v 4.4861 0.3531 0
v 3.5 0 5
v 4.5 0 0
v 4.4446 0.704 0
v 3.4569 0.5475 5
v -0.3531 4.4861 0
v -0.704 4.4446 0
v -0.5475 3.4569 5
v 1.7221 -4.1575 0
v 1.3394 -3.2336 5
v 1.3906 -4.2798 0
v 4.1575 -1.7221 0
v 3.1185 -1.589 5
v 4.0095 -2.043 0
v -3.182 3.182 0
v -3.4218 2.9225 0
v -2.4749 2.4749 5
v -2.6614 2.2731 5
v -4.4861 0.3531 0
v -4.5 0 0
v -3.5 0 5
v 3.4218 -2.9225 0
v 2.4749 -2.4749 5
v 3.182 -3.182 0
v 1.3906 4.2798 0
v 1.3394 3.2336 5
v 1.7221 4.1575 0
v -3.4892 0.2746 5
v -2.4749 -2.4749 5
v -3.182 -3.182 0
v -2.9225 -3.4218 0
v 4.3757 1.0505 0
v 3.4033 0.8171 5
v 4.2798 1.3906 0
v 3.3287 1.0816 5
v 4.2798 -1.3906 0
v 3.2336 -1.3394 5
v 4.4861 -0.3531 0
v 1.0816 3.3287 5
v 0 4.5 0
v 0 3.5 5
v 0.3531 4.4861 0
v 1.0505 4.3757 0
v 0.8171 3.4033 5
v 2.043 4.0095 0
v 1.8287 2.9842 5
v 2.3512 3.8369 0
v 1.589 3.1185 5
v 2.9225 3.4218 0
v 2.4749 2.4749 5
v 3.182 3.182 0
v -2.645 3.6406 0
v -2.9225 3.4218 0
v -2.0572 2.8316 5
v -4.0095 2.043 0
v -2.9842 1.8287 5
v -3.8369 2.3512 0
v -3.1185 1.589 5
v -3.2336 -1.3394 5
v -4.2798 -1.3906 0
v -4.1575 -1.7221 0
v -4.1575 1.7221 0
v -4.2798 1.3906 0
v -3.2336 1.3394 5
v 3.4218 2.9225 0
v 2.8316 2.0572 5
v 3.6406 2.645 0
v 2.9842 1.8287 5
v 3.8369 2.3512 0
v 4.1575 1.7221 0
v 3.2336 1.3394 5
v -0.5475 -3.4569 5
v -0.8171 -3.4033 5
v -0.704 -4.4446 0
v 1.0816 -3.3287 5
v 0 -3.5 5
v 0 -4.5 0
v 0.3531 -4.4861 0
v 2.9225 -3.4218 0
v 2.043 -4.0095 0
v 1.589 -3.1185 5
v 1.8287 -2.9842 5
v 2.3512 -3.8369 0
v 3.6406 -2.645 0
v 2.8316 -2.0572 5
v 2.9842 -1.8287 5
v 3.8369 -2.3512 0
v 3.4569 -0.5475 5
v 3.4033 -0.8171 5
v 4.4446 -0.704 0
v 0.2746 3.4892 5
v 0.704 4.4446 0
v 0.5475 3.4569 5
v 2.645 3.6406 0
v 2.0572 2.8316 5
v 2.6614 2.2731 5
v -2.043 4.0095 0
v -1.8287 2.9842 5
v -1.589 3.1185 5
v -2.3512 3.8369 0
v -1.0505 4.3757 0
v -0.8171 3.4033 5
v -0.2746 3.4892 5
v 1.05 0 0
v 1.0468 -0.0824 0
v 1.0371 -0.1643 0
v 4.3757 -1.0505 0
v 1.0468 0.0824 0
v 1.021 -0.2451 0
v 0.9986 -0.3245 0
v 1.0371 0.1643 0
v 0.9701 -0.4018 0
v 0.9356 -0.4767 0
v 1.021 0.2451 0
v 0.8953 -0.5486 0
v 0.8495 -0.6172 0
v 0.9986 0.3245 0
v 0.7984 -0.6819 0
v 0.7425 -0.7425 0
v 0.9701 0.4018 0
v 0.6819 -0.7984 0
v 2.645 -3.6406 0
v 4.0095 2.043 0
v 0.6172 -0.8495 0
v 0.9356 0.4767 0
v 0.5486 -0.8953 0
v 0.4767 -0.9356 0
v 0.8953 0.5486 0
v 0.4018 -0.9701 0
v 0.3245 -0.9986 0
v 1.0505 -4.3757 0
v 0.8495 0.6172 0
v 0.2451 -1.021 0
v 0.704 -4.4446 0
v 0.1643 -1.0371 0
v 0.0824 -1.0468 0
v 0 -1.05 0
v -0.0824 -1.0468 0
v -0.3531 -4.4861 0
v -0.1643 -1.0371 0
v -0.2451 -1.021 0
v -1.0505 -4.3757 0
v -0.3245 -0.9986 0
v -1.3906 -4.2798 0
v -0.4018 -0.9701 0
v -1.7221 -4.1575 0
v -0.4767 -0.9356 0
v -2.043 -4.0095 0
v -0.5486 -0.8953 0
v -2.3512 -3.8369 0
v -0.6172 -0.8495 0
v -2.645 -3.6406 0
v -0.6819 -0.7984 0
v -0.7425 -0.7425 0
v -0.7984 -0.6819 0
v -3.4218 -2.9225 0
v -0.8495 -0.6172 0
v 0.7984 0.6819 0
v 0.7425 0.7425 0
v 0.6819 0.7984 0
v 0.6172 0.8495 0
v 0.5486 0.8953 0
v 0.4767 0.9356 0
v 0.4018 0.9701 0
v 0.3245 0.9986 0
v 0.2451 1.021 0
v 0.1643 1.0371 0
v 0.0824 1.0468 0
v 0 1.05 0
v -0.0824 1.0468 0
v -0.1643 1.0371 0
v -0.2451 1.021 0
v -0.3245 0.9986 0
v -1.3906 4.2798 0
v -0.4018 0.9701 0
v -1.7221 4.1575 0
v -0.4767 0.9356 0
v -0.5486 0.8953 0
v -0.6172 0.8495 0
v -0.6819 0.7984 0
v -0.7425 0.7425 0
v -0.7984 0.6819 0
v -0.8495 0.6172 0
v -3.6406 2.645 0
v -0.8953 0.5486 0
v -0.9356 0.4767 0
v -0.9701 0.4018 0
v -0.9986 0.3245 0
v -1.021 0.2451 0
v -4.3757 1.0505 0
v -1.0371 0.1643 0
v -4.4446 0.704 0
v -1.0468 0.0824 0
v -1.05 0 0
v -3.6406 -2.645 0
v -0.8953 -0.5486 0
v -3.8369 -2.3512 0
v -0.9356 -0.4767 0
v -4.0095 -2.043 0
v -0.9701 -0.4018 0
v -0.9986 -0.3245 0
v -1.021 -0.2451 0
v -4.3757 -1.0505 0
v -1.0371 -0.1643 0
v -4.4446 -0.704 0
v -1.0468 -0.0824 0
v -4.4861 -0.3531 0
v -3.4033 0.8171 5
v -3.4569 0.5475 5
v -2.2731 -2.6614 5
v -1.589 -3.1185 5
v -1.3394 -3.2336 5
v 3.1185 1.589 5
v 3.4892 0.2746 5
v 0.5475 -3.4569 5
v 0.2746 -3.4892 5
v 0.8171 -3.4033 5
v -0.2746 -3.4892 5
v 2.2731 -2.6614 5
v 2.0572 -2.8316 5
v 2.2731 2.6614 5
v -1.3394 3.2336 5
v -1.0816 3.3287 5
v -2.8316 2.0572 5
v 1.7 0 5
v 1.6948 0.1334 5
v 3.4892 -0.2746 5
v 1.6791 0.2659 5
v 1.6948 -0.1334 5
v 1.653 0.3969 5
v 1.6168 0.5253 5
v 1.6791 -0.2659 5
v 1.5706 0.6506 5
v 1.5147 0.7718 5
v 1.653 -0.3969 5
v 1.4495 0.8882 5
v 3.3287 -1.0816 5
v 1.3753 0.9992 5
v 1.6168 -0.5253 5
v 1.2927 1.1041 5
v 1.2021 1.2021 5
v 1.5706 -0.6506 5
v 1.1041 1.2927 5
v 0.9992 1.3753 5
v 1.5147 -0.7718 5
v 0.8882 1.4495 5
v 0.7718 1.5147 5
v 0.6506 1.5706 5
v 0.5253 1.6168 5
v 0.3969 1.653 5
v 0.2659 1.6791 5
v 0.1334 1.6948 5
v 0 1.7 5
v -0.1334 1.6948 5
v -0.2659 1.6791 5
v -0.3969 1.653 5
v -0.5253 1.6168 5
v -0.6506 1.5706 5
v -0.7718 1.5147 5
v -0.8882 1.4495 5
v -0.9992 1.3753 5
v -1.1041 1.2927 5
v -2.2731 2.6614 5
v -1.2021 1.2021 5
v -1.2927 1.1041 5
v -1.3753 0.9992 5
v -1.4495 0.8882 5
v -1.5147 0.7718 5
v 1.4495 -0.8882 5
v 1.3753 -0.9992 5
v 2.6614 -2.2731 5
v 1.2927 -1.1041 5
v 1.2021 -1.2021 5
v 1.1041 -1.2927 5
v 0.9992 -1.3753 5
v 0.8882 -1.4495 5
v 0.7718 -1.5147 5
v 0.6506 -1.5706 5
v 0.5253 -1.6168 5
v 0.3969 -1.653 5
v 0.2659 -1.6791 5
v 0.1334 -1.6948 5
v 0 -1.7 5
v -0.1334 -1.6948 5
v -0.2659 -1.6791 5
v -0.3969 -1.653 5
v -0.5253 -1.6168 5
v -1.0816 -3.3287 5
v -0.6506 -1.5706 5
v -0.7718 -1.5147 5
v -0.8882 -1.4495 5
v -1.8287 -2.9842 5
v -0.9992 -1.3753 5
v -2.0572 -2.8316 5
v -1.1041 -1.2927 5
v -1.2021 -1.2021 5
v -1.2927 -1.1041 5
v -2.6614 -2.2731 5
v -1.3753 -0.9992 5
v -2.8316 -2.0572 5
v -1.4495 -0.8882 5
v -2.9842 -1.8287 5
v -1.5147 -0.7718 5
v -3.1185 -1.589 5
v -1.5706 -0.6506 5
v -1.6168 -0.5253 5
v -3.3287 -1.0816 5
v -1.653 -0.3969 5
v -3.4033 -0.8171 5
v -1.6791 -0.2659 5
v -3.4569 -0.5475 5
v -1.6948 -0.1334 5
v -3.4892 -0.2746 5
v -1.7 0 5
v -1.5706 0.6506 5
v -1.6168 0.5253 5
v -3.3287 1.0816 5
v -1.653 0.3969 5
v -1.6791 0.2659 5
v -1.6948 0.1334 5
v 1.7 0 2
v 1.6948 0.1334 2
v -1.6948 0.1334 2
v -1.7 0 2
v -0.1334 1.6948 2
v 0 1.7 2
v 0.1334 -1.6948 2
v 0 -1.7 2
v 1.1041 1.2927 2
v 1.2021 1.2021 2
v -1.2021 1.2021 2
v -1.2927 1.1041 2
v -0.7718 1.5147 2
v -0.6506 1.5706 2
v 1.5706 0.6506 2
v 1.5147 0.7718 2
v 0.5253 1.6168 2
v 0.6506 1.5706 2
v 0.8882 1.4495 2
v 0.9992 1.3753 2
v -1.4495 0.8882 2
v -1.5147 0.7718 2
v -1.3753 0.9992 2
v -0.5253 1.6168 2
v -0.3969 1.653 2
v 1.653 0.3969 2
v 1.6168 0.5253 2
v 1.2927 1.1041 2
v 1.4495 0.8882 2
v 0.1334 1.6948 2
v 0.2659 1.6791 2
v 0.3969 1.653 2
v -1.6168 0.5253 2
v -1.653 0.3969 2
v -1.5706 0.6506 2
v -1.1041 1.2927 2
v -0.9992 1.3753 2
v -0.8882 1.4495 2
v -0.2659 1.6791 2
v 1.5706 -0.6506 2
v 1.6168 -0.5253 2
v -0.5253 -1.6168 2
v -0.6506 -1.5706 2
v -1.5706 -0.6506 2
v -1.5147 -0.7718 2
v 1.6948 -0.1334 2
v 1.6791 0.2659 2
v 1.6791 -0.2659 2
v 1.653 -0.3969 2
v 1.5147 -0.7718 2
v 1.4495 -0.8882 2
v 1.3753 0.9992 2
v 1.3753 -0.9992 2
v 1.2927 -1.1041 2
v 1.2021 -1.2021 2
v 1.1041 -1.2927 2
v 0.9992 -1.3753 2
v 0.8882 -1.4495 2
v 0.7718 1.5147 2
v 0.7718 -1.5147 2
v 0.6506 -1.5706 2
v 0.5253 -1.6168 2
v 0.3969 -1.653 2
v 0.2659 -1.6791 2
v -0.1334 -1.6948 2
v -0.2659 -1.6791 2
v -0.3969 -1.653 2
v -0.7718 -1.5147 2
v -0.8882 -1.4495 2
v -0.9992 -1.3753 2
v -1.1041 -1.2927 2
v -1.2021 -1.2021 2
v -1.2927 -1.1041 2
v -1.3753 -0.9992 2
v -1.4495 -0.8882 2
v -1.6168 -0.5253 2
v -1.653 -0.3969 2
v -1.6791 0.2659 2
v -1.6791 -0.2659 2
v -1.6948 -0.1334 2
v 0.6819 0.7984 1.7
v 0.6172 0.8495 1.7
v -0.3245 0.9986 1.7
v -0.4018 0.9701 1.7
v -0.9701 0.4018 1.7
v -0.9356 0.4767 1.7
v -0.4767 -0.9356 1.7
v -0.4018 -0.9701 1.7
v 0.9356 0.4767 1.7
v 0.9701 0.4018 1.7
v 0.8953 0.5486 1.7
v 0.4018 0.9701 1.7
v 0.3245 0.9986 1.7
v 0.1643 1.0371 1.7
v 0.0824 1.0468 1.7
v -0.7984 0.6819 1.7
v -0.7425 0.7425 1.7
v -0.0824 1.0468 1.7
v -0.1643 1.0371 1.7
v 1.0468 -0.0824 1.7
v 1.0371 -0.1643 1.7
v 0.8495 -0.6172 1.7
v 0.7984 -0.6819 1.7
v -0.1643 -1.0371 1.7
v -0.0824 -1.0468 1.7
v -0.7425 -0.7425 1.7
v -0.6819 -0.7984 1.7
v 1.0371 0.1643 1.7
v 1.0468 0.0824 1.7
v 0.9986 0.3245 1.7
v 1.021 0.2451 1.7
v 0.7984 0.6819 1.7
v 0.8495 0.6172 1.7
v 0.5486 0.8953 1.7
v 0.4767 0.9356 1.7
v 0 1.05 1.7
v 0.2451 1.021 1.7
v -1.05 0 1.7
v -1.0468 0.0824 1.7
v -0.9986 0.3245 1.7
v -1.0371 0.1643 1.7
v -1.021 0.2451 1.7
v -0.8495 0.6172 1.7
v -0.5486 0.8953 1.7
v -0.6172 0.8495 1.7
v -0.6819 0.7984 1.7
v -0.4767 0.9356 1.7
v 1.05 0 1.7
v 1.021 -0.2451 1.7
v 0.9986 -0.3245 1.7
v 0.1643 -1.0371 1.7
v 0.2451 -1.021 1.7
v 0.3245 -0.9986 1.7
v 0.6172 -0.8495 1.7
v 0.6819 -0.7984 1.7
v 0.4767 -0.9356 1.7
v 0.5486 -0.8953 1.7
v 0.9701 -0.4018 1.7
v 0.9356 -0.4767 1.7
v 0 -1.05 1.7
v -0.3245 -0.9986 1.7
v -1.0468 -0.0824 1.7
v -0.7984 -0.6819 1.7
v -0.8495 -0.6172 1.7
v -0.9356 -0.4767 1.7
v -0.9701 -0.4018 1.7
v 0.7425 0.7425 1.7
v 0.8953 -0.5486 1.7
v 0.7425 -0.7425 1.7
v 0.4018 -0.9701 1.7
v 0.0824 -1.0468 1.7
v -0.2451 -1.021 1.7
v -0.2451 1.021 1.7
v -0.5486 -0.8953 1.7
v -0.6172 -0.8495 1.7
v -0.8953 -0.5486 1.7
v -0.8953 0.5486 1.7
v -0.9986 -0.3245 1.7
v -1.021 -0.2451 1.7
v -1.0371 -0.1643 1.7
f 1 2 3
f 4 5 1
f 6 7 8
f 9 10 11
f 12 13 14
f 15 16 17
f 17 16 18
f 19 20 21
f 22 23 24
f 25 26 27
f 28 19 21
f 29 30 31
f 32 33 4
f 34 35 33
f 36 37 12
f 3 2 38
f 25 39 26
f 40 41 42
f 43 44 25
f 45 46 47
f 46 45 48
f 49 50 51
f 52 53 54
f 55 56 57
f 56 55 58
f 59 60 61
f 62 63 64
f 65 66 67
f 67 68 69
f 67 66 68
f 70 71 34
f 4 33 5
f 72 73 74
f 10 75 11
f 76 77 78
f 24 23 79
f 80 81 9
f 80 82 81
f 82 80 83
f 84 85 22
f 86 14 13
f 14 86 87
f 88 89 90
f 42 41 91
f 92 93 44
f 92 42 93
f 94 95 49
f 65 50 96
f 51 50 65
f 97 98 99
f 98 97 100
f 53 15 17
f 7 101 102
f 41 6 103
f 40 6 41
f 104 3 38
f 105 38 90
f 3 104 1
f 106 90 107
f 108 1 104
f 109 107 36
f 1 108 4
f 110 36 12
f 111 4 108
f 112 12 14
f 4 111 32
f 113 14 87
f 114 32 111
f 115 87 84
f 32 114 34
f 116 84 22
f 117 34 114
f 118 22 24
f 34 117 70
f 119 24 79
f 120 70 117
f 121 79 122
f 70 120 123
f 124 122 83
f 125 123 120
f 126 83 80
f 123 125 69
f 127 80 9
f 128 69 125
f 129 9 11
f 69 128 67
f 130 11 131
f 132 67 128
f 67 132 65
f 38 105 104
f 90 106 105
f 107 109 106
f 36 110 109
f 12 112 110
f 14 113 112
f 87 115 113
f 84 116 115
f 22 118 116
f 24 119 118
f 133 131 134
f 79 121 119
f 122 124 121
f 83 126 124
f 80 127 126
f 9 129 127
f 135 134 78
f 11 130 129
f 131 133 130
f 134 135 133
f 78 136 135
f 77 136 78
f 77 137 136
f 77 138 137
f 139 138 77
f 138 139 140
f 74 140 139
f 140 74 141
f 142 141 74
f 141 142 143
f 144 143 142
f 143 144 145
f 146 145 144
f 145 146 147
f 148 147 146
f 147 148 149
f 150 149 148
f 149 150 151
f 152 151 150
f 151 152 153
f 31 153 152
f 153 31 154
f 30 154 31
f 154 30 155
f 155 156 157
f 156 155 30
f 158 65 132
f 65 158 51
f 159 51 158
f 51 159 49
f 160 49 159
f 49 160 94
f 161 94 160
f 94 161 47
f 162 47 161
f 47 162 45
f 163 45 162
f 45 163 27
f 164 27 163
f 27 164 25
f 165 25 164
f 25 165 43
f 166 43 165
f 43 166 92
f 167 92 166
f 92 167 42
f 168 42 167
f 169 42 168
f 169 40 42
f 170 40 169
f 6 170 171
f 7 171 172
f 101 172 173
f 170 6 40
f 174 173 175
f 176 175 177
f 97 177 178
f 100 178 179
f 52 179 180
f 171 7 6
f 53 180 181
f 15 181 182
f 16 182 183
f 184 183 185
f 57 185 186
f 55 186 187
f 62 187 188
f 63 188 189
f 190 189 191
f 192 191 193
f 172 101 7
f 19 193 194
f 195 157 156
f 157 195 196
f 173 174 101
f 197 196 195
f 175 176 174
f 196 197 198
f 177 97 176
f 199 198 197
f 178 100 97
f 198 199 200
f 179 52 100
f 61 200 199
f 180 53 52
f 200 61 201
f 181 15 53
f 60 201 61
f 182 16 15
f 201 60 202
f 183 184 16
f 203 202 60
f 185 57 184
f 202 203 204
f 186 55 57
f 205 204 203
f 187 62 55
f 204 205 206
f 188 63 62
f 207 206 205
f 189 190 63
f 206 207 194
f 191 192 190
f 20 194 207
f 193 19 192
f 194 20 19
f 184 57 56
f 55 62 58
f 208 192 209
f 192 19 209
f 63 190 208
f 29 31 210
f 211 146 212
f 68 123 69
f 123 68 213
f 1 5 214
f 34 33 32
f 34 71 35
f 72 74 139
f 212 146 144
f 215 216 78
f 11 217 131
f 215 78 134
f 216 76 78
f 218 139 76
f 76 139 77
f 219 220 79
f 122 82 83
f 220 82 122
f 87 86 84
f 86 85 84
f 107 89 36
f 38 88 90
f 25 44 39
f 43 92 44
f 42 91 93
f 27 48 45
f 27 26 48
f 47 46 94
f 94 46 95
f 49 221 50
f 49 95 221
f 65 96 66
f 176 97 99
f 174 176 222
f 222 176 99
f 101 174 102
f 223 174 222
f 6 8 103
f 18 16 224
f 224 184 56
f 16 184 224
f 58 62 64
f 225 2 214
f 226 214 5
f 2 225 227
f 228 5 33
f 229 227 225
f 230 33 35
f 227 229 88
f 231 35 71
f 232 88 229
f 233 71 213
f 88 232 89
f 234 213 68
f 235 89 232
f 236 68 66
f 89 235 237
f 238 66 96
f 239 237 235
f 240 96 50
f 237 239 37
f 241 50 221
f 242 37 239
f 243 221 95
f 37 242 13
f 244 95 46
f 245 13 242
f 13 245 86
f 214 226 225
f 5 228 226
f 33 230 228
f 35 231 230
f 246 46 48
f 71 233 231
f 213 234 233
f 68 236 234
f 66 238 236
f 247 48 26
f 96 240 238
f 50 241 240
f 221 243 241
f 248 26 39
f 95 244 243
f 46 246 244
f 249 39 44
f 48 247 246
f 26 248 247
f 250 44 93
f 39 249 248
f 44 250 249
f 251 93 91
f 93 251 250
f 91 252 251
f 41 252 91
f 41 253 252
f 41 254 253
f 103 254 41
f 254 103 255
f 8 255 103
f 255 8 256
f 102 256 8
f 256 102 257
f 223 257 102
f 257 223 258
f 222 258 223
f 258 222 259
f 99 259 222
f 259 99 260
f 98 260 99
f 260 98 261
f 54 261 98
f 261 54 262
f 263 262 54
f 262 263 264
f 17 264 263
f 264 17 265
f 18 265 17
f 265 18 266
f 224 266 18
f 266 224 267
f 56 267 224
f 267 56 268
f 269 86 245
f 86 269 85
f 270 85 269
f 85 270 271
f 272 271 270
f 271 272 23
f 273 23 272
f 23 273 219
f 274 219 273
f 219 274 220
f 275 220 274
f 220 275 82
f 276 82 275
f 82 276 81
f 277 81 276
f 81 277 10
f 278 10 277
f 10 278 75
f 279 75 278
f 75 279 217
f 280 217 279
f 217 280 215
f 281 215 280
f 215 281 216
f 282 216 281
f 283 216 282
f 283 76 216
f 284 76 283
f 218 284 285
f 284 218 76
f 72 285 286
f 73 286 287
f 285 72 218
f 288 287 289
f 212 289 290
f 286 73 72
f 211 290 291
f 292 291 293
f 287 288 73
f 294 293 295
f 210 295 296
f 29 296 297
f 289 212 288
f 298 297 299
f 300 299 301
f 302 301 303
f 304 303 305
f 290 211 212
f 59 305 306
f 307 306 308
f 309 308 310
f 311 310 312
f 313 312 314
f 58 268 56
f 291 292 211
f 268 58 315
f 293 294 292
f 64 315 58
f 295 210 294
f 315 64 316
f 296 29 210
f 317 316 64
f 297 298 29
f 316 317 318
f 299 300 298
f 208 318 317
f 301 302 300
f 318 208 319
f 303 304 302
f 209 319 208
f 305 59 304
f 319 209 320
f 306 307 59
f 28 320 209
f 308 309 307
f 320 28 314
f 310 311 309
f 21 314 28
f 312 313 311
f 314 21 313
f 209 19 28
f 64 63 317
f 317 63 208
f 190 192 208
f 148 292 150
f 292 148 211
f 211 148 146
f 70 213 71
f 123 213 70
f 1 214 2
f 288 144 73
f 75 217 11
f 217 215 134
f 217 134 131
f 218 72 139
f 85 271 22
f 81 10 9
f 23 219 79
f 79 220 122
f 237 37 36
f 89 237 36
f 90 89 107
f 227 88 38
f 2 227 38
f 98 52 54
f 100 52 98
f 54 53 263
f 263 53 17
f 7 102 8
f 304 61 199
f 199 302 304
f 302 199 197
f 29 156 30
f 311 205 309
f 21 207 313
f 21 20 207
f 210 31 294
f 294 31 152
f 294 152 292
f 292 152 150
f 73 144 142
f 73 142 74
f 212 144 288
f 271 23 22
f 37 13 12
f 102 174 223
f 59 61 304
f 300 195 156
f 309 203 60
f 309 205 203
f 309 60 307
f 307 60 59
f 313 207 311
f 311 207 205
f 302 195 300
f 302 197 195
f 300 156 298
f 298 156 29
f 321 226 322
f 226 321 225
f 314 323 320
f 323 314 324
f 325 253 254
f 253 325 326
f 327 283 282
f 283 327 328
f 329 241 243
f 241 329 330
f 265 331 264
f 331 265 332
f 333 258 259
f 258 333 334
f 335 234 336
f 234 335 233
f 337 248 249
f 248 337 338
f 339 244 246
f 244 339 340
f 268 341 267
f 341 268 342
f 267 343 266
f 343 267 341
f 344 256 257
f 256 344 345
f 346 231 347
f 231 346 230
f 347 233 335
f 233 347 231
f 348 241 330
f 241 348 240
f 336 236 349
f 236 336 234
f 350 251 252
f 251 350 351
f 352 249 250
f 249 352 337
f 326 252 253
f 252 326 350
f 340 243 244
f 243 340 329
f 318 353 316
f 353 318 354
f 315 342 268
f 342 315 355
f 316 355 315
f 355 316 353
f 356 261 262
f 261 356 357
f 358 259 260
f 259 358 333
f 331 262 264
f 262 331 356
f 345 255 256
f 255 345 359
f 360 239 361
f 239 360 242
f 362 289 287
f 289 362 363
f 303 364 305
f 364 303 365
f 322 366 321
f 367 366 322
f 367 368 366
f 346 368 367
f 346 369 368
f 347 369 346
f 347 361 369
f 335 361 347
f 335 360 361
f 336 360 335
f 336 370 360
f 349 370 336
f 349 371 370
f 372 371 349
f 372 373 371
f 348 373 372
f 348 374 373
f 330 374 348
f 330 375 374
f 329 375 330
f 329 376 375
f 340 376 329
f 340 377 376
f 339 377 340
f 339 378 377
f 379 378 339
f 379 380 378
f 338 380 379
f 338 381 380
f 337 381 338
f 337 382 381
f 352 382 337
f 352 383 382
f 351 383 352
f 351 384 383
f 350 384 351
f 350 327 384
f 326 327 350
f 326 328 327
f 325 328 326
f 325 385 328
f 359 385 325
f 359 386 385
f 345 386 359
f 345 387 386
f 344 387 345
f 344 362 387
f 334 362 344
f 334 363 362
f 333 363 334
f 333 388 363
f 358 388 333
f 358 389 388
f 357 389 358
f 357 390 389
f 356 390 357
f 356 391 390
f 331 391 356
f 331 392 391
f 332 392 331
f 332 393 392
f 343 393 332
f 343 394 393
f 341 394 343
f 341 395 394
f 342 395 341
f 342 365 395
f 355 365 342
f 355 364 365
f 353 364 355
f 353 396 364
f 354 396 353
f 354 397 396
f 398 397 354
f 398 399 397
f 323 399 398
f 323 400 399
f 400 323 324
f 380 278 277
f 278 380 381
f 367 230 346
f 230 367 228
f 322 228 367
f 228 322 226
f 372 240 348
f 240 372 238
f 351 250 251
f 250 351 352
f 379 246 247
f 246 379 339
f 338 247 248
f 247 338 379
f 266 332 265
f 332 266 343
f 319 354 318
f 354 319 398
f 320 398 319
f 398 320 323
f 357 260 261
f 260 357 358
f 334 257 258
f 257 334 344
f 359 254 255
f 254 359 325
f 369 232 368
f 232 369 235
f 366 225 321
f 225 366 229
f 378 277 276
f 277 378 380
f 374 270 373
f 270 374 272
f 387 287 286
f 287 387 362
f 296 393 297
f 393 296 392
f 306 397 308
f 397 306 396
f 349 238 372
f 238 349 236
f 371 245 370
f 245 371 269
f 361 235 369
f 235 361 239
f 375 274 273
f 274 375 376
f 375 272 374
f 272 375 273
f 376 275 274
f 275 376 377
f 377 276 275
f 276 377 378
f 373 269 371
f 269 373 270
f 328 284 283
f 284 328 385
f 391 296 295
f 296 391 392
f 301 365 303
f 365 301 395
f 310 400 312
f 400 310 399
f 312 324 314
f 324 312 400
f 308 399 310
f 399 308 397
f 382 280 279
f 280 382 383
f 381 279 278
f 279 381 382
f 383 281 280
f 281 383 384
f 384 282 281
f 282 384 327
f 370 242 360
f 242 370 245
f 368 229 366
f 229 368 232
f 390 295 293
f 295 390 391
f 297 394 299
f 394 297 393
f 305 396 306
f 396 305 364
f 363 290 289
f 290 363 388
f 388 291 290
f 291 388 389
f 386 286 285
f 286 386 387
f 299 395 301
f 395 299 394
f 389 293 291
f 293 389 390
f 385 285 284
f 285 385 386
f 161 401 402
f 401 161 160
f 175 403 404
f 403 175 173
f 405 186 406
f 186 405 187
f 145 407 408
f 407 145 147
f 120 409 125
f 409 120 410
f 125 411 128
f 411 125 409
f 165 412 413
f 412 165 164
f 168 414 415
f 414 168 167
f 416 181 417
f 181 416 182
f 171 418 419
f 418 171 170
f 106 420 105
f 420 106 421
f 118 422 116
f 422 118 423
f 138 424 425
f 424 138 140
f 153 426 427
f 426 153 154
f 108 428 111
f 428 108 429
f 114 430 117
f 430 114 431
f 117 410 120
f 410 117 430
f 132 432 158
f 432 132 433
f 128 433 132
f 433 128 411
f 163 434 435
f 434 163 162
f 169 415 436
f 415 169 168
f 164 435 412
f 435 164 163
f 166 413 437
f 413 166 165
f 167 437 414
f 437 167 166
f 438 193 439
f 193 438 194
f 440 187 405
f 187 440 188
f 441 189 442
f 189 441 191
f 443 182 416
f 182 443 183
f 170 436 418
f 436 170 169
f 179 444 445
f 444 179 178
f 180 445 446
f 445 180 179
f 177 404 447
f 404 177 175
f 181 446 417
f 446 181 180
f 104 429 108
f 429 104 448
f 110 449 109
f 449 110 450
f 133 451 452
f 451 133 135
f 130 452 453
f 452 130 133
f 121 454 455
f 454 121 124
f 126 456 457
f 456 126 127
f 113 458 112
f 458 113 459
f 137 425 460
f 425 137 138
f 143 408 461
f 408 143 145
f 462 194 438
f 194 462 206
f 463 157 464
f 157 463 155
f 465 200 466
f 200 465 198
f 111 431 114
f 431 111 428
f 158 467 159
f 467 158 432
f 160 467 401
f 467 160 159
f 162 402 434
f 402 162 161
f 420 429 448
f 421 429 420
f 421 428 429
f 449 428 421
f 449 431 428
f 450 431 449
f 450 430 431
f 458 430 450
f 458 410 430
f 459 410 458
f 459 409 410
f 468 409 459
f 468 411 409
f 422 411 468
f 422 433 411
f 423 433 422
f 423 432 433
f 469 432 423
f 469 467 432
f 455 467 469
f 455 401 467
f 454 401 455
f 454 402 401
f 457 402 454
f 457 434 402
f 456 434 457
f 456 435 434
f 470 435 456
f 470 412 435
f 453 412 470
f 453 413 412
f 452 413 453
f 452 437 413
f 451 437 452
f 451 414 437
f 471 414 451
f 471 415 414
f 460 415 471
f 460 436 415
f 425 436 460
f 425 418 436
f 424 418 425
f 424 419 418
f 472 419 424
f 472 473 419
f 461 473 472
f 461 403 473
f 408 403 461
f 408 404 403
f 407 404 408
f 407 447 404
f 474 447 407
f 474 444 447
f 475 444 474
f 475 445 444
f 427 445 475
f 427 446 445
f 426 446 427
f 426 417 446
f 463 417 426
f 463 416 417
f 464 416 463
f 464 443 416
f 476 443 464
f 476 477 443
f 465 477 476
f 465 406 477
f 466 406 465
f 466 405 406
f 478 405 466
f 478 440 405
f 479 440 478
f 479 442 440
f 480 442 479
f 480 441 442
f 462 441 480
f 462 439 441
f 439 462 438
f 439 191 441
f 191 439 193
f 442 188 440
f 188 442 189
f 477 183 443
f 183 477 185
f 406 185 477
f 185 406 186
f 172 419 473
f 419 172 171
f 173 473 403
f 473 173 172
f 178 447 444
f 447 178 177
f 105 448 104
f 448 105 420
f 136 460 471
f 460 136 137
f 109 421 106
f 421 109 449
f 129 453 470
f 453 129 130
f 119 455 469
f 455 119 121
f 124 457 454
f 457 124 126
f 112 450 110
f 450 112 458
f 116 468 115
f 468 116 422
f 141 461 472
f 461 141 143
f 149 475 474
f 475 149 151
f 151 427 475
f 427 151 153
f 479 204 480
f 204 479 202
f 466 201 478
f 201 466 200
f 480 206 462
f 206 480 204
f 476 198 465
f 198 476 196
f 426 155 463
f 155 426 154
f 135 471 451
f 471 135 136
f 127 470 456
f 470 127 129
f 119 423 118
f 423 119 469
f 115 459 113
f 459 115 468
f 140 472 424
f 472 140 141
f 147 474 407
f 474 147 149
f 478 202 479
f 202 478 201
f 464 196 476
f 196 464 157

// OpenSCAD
$fn=80;

difference() {
   cylinder(h=5,d1=9,d2=7);
   translate([0,0,2.0]) cylinder(h=5,d=3.4);
   translate([0,0,-0.1]) cylinder(h=1.8,d=2.1);
}
